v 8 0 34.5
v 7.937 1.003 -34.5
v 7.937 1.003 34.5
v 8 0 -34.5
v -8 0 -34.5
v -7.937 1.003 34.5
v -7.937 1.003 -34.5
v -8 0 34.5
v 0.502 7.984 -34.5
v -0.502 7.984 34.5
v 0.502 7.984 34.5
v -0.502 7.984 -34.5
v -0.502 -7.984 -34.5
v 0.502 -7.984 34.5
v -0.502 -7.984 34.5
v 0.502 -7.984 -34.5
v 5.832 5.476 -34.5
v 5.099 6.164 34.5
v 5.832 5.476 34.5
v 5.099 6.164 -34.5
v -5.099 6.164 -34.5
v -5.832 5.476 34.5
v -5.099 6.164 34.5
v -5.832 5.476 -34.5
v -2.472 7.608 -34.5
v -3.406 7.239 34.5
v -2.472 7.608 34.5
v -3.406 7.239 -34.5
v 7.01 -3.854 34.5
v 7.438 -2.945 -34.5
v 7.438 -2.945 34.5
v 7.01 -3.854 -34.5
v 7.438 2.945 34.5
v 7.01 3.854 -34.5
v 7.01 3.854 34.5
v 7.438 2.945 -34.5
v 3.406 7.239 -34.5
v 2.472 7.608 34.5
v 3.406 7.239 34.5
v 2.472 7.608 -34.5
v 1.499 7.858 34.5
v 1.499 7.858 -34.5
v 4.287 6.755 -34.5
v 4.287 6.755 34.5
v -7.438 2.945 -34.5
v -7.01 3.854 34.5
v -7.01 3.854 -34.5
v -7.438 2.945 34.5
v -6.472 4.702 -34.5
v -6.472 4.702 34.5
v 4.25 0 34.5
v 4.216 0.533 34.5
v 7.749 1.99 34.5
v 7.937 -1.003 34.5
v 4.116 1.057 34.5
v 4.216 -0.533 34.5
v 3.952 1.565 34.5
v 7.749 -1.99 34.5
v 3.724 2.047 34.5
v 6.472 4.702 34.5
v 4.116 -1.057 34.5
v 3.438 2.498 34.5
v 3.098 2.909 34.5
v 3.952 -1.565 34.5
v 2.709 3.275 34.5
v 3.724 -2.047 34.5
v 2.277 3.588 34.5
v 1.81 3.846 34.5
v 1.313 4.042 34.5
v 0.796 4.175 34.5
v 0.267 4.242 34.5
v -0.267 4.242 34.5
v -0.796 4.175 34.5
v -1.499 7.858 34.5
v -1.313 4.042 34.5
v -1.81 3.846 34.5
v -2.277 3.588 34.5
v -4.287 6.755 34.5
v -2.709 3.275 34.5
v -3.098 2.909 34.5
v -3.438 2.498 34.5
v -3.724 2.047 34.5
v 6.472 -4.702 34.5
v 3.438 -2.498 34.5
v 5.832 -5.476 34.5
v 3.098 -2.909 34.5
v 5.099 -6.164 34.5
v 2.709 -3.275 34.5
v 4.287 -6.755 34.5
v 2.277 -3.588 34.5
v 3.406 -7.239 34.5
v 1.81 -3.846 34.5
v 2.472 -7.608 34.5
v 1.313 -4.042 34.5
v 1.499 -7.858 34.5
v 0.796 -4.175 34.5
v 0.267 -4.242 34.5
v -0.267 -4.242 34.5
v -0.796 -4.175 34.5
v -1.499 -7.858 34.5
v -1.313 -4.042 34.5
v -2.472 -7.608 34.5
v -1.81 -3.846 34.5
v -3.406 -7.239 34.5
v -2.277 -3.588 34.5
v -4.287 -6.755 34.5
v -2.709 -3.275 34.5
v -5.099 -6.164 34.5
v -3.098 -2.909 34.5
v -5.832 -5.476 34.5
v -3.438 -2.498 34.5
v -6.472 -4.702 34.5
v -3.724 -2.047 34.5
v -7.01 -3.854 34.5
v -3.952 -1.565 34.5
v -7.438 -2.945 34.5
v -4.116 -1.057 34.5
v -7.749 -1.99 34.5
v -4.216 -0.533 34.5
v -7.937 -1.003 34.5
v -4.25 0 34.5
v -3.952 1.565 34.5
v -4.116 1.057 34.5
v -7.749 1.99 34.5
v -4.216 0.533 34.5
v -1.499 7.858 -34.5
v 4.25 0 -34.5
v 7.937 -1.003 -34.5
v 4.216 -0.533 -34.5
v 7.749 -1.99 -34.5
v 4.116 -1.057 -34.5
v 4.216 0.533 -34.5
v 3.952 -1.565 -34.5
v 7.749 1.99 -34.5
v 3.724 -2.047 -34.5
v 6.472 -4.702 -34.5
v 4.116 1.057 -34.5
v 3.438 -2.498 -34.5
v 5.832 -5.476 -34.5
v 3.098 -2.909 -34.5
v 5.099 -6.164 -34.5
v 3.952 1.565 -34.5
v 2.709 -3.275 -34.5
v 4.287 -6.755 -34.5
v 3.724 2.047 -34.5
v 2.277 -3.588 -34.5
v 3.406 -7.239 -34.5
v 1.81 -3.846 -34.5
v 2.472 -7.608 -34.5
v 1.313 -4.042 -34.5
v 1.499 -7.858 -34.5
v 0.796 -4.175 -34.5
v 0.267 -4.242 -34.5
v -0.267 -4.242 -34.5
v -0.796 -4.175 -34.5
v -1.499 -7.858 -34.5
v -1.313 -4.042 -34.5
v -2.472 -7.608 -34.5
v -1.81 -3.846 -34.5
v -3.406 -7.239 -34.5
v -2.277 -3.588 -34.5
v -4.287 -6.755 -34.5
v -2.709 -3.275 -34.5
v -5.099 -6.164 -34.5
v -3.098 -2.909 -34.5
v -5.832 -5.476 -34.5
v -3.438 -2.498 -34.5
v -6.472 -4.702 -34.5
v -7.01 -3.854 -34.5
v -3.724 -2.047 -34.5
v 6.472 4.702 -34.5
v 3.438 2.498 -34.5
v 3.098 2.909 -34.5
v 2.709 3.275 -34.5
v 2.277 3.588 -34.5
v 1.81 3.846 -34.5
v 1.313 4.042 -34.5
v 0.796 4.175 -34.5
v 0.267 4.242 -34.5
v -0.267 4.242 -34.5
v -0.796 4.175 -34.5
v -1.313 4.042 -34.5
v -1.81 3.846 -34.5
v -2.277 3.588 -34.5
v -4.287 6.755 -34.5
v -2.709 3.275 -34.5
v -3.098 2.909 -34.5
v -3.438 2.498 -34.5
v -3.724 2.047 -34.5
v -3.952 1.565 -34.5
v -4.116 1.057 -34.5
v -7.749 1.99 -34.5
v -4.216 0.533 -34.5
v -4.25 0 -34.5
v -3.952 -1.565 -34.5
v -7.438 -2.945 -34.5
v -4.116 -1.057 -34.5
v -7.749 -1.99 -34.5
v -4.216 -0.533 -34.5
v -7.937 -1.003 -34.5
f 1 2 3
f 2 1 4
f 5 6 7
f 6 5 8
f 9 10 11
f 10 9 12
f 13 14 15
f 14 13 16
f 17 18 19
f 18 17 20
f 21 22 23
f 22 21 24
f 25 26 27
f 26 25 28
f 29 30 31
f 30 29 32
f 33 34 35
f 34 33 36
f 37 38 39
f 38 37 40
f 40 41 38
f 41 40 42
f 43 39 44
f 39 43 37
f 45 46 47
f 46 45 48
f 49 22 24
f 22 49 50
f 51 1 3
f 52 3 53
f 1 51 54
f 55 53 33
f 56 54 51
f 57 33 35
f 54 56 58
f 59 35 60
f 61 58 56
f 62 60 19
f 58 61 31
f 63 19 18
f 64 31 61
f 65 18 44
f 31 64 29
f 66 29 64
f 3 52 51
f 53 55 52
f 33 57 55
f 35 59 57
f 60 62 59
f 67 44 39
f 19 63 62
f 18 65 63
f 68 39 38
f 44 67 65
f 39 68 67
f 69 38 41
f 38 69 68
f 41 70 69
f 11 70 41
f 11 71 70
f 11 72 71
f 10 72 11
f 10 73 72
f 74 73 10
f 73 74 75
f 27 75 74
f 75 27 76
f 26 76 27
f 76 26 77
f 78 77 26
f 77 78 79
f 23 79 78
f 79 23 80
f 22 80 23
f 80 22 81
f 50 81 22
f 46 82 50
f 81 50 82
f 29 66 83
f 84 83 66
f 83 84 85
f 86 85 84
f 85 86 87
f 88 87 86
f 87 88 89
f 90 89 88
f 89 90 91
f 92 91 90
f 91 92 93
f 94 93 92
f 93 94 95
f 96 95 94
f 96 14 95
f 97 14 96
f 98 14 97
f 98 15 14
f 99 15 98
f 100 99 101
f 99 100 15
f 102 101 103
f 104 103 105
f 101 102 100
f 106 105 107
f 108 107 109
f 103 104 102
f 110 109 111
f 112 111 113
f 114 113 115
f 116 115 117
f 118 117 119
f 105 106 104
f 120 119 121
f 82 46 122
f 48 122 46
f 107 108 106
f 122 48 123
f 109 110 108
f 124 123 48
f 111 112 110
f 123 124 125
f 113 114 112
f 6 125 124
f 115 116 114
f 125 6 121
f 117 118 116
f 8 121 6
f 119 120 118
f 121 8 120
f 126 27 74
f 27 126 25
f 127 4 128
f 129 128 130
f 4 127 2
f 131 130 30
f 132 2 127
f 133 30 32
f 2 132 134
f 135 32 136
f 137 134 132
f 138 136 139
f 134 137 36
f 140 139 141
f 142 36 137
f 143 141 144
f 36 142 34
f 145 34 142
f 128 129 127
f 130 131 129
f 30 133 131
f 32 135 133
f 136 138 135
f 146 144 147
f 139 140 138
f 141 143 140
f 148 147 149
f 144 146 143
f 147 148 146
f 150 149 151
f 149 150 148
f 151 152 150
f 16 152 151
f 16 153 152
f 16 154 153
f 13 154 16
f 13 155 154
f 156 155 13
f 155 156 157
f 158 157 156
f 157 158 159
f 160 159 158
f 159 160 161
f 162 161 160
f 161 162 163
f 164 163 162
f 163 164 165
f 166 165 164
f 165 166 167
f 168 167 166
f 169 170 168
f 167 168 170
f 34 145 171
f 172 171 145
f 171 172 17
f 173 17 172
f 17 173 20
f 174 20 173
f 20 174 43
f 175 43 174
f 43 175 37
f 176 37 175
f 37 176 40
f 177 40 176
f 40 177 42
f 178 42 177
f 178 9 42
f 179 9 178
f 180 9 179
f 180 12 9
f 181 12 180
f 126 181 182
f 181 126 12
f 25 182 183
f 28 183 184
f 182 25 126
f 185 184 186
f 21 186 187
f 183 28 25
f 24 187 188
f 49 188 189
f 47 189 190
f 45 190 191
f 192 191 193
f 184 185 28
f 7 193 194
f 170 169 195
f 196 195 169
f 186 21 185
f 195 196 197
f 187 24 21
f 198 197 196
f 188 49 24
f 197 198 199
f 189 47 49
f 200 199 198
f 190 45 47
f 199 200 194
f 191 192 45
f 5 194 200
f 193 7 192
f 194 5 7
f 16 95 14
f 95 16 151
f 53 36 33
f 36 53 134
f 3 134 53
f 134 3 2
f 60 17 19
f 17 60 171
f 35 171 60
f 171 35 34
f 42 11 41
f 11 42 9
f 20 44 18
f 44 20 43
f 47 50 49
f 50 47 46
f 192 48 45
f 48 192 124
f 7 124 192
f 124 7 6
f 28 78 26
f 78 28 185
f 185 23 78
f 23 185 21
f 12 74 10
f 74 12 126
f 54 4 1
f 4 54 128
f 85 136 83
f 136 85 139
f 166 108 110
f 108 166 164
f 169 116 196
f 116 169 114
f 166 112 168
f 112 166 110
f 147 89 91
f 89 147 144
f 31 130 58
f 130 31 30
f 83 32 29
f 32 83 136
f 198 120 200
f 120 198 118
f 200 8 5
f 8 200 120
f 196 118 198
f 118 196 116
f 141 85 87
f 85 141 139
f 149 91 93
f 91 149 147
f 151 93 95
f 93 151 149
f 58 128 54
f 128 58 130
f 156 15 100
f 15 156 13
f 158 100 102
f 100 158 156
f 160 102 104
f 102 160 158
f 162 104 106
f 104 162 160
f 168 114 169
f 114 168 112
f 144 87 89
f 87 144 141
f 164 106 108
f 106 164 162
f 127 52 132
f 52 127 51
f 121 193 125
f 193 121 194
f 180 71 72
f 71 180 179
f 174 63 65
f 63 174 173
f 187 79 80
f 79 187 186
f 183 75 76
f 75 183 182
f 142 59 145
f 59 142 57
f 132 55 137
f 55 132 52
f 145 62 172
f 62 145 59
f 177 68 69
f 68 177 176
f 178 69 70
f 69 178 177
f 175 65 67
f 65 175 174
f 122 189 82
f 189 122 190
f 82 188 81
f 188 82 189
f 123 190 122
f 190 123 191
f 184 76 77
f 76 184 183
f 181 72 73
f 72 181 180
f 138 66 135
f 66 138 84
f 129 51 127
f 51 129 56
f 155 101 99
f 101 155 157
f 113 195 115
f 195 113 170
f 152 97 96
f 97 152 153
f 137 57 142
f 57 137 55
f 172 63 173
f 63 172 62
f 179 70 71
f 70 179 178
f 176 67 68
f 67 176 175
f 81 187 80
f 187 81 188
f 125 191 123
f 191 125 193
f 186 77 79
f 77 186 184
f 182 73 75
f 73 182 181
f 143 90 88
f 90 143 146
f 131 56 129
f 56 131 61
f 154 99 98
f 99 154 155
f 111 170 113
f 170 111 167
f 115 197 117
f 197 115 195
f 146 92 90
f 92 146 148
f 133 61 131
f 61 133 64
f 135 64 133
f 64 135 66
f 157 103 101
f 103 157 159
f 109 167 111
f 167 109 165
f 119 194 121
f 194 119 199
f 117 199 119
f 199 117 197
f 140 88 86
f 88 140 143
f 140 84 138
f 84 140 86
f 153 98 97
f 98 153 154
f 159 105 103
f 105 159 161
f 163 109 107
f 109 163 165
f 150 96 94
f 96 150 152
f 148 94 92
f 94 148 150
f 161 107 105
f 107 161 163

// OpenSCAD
$fn = 50;


difference() {
	union() {
		translate(v = [0, 0, -34.5000000000]) {
			cylinder(h = 69, r = 8.0000000000);
		}
	}
	union() {
		translate(v = [0, 0, -100.0000000000]) {
			cylinder(h = 200, r = 4.2500000000);
		}
	}
}
